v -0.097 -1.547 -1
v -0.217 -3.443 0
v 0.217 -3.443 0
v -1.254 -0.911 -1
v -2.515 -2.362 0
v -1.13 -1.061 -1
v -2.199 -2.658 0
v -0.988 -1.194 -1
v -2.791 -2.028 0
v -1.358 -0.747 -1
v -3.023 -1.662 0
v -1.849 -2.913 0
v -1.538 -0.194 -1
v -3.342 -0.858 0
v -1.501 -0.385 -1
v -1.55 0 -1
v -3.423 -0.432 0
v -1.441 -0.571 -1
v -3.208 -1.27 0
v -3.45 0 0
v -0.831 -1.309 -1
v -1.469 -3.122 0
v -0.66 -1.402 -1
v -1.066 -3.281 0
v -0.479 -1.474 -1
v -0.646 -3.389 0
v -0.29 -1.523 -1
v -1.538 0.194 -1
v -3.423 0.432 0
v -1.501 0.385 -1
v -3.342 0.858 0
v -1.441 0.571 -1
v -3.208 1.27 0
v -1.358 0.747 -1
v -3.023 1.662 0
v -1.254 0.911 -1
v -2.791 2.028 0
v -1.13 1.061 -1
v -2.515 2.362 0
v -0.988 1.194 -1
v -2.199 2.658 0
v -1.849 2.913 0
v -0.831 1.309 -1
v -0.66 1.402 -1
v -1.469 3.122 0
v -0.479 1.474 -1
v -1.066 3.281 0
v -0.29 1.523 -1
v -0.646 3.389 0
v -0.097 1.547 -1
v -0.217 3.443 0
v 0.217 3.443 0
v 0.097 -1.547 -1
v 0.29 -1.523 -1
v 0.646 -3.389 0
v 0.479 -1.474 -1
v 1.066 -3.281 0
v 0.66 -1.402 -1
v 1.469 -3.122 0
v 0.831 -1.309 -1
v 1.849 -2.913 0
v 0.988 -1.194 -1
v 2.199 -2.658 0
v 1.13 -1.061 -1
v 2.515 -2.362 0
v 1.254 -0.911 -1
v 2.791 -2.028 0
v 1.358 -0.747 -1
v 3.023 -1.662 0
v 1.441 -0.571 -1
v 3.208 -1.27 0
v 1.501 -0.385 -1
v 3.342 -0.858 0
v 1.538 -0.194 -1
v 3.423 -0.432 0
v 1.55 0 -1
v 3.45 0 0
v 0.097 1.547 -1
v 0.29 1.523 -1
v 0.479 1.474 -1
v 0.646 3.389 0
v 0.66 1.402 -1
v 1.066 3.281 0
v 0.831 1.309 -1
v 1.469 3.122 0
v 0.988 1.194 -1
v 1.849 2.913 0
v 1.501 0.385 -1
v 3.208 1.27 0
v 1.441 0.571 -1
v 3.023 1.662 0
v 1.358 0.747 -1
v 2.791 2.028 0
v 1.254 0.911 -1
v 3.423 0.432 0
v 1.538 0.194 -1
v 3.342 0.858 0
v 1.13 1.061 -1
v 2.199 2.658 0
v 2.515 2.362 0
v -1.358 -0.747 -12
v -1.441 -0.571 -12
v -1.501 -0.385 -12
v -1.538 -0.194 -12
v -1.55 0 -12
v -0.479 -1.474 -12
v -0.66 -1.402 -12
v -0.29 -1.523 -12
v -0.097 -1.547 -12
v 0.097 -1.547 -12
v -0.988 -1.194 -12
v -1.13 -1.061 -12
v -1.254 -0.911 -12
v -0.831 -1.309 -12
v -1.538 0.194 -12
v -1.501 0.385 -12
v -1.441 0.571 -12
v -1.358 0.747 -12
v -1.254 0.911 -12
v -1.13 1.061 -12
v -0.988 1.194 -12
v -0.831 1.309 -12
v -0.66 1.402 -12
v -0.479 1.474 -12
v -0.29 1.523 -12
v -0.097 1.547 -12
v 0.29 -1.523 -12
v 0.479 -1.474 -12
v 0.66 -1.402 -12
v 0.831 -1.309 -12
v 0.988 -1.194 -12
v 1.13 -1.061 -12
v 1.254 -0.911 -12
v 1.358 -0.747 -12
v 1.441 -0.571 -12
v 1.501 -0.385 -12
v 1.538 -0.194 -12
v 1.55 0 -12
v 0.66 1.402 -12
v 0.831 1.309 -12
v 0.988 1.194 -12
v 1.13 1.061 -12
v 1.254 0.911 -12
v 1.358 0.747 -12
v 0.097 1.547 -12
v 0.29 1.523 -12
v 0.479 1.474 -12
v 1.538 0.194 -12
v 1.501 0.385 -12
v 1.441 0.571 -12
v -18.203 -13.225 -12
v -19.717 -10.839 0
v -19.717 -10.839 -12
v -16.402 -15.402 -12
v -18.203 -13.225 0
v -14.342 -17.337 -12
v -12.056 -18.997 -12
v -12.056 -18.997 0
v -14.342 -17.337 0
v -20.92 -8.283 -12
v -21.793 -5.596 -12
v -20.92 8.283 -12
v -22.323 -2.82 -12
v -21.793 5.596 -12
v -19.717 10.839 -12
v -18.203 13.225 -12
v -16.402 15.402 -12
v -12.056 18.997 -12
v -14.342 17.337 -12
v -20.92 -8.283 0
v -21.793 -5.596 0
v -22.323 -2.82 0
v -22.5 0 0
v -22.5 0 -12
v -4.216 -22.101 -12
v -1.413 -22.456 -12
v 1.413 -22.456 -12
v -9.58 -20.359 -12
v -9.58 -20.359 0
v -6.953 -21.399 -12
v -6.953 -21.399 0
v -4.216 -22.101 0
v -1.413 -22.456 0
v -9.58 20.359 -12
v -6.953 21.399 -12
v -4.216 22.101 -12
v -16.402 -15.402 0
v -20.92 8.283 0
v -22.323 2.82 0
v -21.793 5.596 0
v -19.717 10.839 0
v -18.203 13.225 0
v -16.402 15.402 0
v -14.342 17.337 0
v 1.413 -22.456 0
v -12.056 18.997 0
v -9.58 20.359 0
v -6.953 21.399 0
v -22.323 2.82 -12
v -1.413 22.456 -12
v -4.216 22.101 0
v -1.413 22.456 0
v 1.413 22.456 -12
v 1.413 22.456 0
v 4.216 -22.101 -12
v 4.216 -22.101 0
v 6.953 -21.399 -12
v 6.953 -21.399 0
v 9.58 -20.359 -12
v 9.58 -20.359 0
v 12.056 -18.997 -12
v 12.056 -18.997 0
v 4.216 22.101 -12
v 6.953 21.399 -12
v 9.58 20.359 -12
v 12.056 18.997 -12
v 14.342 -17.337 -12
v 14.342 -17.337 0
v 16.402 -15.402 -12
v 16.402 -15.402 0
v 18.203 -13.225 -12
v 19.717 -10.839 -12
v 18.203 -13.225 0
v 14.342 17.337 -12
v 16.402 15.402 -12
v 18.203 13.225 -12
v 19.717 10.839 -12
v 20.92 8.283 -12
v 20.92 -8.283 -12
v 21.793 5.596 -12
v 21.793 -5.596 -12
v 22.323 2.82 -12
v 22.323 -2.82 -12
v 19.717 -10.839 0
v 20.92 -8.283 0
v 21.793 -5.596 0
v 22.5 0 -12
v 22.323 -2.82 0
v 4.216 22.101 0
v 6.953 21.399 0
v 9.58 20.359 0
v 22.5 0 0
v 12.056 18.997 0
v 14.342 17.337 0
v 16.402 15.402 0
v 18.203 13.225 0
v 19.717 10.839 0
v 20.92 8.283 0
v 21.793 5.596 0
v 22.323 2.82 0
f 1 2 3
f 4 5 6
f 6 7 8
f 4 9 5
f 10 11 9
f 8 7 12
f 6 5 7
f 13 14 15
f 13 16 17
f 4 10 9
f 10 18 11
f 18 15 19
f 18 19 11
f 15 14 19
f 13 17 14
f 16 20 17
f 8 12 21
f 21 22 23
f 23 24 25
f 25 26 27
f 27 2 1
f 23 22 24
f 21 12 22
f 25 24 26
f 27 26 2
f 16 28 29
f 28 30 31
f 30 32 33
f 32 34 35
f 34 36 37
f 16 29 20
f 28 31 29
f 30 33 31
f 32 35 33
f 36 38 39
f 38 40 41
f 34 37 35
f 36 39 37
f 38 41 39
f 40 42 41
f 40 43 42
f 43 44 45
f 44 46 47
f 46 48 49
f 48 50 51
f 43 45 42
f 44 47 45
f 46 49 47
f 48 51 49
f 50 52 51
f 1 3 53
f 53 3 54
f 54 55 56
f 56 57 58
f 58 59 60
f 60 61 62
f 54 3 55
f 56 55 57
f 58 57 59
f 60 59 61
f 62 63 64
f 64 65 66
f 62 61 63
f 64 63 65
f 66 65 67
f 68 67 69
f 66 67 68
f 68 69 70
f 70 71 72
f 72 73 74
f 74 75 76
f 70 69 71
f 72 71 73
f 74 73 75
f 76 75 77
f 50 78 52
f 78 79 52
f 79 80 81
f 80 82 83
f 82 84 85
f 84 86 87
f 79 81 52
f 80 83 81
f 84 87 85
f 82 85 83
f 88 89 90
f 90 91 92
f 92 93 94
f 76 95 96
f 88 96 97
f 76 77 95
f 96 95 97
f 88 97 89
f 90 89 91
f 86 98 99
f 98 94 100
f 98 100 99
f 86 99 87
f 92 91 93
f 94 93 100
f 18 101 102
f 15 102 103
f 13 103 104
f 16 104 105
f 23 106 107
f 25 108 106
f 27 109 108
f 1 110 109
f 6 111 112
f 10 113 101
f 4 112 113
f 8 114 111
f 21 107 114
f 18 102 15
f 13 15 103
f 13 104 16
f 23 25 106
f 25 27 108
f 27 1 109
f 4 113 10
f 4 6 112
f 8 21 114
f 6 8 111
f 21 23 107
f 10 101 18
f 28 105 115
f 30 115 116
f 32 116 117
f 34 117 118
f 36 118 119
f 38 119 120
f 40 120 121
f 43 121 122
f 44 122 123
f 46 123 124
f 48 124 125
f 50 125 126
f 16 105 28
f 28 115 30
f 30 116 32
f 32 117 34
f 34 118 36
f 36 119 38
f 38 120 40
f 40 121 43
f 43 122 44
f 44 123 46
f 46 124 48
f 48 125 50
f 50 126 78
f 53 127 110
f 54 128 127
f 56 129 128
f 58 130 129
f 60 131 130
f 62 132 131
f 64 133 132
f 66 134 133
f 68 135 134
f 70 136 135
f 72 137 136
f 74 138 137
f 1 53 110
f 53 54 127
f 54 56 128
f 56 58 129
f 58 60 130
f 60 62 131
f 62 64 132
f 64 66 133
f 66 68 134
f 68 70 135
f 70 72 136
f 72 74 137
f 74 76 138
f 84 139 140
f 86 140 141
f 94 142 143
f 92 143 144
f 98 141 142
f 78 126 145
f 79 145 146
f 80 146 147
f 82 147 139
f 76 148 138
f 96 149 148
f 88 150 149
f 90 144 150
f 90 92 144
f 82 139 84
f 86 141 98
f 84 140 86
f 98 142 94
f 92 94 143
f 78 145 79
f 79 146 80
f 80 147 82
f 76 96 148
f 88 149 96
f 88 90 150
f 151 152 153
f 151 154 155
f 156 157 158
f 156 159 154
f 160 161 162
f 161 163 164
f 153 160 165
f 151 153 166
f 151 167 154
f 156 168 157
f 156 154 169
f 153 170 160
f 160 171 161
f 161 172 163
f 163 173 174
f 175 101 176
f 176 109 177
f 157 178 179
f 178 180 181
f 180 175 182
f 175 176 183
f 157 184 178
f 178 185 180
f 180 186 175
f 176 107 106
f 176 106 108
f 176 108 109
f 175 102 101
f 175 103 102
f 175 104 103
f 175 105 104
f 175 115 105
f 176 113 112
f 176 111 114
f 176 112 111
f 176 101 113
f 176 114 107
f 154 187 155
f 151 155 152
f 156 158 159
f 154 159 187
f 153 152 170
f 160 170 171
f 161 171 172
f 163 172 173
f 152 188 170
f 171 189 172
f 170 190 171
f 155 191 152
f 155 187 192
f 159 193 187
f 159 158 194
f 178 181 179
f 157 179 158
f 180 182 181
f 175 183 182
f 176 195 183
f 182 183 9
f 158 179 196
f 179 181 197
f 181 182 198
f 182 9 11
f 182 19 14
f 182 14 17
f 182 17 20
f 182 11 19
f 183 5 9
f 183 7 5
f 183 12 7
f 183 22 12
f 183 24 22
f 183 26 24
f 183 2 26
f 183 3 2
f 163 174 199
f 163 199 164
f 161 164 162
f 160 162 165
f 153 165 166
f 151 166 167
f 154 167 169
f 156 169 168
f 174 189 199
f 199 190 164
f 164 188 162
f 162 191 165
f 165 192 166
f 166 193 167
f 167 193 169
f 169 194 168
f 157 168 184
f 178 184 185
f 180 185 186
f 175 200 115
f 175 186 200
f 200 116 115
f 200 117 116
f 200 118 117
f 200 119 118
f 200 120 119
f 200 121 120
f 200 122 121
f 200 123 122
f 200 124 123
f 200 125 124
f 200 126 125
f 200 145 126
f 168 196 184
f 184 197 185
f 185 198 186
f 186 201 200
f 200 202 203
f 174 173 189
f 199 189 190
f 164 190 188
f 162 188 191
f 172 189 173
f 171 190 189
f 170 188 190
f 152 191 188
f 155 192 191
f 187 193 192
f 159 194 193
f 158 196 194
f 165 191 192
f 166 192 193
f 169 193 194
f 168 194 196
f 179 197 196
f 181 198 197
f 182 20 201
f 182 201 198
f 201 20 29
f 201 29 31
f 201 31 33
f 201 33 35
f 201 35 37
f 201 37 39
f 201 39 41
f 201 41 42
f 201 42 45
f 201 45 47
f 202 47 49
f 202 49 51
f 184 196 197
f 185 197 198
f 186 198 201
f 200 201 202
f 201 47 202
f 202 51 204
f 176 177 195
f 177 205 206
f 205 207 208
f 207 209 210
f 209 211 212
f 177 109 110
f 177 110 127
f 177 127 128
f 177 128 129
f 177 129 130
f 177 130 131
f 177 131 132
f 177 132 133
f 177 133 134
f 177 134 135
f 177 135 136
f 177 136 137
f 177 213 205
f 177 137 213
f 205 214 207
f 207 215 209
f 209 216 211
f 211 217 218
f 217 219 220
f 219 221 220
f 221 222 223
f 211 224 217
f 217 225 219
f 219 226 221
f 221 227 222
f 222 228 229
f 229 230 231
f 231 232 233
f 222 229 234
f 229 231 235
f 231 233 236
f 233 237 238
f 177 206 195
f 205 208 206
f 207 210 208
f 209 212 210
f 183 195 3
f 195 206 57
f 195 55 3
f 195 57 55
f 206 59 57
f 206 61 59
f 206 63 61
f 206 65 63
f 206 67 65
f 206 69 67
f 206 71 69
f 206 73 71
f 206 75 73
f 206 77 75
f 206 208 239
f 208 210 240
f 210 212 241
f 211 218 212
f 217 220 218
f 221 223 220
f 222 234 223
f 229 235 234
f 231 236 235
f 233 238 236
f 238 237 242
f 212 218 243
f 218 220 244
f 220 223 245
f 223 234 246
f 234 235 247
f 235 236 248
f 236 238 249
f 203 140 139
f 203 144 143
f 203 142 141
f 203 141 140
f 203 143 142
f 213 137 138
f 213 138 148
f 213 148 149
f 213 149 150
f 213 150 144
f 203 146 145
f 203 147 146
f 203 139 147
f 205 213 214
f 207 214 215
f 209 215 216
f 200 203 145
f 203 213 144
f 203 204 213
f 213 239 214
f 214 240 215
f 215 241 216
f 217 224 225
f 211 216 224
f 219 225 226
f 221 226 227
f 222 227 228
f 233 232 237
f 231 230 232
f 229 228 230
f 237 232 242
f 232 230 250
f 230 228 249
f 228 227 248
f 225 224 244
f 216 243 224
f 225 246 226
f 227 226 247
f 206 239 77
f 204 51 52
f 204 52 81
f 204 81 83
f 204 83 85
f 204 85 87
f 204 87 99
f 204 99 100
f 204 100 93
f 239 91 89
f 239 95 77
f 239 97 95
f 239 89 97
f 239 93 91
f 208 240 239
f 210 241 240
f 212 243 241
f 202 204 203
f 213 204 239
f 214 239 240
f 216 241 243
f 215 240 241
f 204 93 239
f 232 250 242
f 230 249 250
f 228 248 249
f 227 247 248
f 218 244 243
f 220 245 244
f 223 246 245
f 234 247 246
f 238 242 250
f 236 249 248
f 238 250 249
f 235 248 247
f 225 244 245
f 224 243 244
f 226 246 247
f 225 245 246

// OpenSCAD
$fn = 50;

difference() {
	union() {
		translate(v = [0, 0, -12.0]) {
			cylinder(h = 12, r = 22.5);
		}
	}
	union() {
		translate(v = [0, 0, 0]) {
			rotate(a = [0, 0, 0]) {
				difference() {
					union() {
						translate(v = [0, 0, -15.0]) {
							cylinder(h = 15, r = 1.25);
						}
						translate(v = [0, 0, -1.0]) {
							cylinder(h = 1.0, r1 = 1.55, r2 = 3.45);
						}
						translate(v = [0, 0, -15.0]) {
							cylinder(h = 15, r = 1.55);
						}
						translate(v = [0, 0, -15.0]) {
							cylinder(h = 15, r = 1.25);
						}
					}
					union();
				}
			}
		}
	}
}
